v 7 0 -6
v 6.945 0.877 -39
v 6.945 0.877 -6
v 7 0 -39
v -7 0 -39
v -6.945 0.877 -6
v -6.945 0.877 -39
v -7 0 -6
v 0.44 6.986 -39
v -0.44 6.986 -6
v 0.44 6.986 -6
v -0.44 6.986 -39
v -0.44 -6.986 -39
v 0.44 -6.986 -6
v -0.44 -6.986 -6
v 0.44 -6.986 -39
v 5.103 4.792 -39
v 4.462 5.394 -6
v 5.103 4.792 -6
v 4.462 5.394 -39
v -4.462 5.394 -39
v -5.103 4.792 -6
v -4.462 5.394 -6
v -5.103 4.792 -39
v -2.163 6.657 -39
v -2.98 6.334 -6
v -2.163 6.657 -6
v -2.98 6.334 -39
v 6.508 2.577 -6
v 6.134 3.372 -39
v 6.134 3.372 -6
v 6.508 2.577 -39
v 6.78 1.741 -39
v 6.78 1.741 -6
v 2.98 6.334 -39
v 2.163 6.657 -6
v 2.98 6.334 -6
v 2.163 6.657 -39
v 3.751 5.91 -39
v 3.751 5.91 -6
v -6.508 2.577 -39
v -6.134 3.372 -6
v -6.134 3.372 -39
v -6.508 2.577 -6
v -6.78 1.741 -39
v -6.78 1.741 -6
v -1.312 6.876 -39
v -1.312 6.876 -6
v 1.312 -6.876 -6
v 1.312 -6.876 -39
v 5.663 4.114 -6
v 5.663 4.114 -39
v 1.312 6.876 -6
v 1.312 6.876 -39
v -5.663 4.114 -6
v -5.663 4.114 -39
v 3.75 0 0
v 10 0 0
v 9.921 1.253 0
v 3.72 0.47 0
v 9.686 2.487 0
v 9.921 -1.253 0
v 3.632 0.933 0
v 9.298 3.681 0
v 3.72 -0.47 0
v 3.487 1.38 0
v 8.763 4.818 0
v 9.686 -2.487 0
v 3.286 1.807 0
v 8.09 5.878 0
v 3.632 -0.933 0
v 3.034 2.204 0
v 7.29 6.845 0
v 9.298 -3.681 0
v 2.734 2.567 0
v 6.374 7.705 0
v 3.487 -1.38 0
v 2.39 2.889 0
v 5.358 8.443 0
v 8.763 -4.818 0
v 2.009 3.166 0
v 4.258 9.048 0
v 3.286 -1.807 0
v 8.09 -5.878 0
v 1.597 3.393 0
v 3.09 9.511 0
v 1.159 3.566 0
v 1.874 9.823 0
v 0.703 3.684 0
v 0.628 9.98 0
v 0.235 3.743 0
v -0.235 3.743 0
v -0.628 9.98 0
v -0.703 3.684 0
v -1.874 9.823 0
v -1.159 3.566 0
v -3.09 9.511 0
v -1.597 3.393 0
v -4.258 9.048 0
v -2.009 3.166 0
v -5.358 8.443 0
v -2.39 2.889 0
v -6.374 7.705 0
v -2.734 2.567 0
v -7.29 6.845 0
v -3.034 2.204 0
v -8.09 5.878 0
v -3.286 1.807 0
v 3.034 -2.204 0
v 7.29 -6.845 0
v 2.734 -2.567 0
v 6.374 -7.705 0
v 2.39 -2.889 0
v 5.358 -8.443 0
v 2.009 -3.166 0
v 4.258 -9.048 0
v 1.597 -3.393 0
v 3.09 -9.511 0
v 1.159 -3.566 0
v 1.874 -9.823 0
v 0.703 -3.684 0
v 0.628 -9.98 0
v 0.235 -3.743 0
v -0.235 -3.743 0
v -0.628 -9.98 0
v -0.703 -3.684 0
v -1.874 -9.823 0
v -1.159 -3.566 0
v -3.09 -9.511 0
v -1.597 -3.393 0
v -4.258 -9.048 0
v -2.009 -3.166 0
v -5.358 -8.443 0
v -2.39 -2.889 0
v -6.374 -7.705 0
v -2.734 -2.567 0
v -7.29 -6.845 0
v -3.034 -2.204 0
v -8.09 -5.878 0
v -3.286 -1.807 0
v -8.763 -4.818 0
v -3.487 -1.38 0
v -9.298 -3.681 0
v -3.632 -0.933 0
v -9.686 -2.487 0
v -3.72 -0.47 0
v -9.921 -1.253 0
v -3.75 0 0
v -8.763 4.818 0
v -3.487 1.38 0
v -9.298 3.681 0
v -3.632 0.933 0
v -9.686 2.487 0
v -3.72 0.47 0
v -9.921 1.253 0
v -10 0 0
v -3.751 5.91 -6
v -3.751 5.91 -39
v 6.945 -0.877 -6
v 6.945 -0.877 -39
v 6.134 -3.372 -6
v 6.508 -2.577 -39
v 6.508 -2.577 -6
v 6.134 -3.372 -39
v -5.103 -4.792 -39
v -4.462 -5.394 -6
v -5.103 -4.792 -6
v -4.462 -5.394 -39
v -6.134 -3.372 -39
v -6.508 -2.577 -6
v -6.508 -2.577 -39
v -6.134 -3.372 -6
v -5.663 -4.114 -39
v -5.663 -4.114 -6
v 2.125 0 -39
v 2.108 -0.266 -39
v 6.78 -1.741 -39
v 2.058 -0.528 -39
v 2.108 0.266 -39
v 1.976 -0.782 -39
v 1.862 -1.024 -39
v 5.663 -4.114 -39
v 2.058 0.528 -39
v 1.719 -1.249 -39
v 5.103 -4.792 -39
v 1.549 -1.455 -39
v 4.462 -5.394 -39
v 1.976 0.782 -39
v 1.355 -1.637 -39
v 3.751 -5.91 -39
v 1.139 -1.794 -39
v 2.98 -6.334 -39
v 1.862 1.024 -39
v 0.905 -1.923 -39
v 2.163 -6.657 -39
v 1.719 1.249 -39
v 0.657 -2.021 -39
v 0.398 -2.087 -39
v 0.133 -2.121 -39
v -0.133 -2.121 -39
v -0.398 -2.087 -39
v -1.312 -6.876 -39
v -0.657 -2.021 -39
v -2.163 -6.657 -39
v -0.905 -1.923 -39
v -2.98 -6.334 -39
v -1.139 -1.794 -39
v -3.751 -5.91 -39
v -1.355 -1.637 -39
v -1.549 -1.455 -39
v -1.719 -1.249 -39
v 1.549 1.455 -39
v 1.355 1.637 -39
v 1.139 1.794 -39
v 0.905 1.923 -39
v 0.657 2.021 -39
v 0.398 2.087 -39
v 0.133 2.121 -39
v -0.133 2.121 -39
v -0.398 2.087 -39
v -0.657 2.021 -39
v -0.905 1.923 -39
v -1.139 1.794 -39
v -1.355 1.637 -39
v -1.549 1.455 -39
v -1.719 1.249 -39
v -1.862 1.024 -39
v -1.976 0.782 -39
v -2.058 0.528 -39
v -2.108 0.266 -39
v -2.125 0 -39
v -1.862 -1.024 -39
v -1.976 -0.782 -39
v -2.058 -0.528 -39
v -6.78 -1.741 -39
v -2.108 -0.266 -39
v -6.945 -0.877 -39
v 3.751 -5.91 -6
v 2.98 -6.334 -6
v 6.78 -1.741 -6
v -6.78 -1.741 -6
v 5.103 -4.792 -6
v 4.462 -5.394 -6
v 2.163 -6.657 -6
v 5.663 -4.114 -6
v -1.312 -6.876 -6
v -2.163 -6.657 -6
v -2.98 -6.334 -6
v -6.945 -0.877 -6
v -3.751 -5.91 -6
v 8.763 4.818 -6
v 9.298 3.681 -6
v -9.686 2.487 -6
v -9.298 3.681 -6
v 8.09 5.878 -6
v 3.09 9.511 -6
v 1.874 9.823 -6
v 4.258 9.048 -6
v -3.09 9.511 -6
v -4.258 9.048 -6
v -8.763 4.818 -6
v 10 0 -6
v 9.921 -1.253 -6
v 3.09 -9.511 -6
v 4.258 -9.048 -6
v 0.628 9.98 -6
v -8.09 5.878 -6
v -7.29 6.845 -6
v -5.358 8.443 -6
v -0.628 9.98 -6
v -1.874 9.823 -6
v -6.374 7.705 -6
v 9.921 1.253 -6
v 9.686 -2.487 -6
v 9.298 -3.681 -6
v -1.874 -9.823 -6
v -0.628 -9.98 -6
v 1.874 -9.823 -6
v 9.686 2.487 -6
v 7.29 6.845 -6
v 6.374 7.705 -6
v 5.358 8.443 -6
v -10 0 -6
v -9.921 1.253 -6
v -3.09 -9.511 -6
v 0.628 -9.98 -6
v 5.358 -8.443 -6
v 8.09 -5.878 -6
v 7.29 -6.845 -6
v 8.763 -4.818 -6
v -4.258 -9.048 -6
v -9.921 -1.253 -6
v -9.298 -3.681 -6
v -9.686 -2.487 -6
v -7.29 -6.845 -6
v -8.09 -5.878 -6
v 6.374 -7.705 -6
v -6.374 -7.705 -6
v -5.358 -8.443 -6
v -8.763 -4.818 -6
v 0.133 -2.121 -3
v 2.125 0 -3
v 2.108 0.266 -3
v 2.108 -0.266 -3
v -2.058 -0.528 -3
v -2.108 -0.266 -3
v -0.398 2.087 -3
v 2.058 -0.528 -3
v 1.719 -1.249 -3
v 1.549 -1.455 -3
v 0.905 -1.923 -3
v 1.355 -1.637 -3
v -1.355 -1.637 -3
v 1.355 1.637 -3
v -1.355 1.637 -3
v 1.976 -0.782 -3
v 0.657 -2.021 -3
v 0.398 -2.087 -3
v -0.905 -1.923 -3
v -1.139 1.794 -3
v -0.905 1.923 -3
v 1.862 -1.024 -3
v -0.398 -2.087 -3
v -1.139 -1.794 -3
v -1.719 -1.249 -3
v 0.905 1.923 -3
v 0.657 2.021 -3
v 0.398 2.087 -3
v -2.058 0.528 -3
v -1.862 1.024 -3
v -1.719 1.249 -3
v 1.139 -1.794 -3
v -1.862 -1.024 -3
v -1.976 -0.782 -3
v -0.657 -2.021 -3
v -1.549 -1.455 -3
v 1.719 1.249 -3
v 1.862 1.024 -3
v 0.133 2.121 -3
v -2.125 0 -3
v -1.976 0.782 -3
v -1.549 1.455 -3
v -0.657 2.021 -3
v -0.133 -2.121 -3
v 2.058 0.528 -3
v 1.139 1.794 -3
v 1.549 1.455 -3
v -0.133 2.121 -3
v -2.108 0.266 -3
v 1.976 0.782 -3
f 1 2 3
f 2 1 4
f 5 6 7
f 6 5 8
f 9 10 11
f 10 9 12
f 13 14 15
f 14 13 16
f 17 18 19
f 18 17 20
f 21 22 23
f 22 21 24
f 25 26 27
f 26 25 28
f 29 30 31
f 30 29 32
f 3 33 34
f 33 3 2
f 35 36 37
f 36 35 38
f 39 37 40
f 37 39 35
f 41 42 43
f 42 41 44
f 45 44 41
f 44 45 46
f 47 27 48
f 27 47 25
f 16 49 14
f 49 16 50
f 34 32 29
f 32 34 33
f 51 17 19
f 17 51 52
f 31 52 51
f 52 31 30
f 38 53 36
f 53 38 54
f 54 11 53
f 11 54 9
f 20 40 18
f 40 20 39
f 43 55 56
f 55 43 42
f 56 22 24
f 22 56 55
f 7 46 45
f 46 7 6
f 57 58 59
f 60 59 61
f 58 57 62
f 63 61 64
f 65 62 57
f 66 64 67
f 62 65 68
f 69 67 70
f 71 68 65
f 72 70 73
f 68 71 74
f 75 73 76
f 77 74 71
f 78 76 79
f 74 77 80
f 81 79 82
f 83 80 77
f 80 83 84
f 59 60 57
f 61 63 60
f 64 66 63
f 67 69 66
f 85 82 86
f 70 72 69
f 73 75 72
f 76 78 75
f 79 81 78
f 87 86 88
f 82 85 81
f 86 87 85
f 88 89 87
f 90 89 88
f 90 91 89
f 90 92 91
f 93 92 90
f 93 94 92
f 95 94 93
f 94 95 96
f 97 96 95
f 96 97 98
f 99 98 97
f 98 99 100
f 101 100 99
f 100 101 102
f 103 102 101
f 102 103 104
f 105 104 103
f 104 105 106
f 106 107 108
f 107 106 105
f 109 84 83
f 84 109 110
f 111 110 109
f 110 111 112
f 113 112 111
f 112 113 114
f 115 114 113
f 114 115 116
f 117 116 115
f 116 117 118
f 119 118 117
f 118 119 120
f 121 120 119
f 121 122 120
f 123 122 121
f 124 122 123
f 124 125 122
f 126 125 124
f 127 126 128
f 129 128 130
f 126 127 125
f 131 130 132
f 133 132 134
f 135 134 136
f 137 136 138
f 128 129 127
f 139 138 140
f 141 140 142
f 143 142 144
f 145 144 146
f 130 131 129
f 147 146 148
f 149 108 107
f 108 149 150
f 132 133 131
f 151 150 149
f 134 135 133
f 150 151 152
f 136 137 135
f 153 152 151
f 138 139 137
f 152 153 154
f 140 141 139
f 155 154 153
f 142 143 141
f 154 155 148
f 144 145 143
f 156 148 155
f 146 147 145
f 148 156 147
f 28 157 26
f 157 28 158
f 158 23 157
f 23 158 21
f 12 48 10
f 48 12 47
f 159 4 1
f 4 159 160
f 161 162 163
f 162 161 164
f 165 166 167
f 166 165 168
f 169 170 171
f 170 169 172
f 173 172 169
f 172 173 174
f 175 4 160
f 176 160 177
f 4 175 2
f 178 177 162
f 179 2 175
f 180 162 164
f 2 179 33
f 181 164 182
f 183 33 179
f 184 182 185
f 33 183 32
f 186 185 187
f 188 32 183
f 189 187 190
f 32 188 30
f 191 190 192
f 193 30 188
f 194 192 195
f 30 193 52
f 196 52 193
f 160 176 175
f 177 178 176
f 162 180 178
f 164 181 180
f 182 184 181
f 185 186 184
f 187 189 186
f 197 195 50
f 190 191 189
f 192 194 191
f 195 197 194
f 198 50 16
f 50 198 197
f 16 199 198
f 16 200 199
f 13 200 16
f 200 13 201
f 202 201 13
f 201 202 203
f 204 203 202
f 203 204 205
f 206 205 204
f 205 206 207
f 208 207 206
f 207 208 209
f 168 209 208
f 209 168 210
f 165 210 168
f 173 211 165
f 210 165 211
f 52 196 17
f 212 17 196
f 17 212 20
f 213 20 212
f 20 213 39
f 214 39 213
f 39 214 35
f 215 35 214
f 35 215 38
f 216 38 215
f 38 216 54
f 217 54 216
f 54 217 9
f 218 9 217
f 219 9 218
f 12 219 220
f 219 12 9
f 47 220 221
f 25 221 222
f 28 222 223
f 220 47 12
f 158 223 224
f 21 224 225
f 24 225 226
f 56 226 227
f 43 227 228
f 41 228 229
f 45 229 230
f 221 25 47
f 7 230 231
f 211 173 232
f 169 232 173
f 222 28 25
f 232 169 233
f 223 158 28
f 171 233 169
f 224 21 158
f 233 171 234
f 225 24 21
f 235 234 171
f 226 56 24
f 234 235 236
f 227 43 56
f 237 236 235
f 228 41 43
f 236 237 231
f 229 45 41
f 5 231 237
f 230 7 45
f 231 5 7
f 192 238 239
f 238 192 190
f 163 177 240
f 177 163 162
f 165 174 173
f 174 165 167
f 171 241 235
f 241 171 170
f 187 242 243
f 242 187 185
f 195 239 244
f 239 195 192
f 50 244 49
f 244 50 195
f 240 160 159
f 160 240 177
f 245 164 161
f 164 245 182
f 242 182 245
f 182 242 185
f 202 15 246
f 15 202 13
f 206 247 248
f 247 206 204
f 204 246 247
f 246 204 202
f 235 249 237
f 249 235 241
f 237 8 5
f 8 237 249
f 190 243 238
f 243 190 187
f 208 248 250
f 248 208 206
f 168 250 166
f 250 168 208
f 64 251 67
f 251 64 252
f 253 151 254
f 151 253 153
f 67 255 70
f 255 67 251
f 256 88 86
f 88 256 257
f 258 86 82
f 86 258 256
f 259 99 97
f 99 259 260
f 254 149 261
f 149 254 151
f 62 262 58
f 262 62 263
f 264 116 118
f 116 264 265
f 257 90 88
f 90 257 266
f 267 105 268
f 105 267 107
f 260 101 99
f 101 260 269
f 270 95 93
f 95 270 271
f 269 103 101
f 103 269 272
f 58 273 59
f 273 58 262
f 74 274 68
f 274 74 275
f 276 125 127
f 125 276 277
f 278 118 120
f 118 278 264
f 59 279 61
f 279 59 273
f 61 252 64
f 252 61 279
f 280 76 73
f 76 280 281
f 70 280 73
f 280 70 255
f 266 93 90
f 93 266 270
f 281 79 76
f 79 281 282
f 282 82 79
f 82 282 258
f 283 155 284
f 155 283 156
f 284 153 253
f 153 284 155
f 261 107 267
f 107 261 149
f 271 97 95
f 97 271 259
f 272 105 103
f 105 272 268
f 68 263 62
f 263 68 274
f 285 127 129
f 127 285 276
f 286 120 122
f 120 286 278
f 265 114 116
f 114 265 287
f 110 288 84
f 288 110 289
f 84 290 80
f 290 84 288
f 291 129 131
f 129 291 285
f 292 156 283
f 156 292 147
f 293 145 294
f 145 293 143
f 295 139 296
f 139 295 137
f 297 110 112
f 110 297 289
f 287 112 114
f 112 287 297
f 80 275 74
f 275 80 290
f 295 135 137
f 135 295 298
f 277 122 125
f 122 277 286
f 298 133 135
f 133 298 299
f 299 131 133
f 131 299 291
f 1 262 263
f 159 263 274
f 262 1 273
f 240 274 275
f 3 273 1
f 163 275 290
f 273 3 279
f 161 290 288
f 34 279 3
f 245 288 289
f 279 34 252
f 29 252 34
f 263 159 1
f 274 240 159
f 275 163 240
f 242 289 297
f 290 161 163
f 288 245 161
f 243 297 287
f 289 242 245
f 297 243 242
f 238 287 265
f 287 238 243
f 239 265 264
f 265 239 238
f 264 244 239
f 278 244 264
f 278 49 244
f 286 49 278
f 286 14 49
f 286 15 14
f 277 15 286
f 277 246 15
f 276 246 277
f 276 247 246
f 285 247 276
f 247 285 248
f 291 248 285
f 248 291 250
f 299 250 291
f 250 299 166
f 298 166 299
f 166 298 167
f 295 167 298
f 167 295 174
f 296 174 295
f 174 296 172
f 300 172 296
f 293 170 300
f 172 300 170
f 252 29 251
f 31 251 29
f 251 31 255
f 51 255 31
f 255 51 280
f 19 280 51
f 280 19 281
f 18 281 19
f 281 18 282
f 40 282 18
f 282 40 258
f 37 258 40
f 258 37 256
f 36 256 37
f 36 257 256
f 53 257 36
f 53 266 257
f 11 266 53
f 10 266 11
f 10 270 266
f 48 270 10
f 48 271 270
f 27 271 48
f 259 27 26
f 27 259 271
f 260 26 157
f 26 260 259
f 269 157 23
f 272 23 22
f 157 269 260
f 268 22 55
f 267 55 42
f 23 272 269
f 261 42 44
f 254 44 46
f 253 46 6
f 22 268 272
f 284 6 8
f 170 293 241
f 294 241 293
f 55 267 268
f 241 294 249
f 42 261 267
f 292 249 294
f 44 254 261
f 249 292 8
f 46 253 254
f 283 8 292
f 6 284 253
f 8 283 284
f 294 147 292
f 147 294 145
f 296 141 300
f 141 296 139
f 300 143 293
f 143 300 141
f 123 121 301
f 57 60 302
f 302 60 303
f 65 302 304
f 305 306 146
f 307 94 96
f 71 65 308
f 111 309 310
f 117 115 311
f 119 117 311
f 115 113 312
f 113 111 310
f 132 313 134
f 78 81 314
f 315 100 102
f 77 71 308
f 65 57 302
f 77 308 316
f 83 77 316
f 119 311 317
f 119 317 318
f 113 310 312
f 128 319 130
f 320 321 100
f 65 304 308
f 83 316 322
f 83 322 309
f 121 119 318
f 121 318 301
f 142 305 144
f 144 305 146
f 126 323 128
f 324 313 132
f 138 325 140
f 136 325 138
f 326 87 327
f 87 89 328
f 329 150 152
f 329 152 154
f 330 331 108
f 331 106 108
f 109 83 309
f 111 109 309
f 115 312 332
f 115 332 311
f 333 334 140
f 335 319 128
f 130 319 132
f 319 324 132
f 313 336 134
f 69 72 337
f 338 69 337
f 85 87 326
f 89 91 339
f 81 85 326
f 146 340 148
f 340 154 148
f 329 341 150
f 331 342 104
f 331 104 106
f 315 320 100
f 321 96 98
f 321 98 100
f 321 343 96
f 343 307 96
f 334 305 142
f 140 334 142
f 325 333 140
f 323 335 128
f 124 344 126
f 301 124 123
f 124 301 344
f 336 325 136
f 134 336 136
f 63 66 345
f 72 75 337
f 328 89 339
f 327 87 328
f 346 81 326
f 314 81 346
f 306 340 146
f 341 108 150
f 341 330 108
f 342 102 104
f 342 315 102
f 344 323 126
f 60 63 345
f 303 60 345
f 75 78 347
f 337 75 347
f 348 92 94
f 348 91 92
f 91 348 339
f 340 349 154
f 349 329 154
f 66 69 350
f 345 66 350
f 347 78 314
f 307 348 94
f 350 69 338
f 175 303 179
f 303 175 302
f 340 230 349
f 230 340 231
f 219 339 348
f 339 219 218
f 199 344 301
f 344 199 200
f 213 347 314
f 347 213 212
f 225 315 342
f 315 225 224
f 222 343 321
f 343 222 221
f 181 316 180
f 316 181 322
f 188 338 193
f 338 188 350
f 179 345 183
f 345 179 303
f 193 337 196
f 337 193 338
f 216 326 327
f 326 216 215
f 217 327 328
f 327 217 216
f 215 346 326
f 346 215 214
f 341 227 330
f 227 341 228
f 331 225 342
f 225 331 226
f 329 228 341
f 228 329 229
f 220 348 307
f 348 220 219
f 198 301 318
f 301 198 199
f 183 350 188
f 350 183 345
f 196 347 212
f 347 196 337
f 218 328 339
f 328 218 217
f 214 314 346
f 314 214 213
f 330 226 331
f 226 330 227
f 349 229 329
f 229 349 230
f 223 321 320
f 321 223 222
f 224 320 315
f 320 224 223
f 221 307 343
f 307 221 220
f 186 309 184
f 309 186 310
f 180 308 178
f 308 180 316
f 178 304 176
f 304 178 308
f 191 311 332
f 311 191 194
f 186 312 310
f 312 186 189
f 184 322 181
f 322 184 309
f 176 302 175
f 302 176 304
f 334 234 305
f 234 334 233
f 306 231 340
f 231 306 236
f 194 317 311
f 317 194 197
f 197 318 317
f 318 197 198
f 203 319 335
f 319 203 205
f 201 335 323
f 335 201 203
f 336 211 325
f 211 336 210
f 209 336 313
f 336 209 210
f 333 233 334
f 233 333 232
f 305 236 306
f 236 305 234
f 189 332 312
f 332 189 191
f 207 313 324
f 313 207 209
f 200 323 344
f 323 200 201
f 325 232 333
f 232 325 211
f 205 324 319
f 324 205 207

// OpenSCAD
$fn = 50;


difference() {
	union() {
		translate(v = [0, 0, -39.0000000000]) {
			cylinder(h = 39, r = 7.0000000000);
		}
		translate(v = [0, 0, -6.0000000000]) {
			cylinder(h = 6, r = 10.0000000000);
		}
	}
	union() {
		translate(v = [0, 0, 0]) {
			rotate(a = [0, 0, 0]) {
				difference() {
					union() {
						#translate(v = [0, 0, -39.0000000000]) {
							cylinder(h = 39, r = 2.0000000000);
						}
						#translate(v = [0, 0, -3]) {
							cylinder(h = 3, r1 = 2.1250000000, r2 = 3.7500000000);
						}
						#translate(v = [0, 0, -39.0000000000]) {
							cylinder(h = 39, r = 2.1250000000);
						}
						#translate(v = [0, 0, -39.0000000000]) {
							cylinder(h = 39, r = 2.0000000000);
						}
					}
					union();
				}
			}
		}
	}
}
